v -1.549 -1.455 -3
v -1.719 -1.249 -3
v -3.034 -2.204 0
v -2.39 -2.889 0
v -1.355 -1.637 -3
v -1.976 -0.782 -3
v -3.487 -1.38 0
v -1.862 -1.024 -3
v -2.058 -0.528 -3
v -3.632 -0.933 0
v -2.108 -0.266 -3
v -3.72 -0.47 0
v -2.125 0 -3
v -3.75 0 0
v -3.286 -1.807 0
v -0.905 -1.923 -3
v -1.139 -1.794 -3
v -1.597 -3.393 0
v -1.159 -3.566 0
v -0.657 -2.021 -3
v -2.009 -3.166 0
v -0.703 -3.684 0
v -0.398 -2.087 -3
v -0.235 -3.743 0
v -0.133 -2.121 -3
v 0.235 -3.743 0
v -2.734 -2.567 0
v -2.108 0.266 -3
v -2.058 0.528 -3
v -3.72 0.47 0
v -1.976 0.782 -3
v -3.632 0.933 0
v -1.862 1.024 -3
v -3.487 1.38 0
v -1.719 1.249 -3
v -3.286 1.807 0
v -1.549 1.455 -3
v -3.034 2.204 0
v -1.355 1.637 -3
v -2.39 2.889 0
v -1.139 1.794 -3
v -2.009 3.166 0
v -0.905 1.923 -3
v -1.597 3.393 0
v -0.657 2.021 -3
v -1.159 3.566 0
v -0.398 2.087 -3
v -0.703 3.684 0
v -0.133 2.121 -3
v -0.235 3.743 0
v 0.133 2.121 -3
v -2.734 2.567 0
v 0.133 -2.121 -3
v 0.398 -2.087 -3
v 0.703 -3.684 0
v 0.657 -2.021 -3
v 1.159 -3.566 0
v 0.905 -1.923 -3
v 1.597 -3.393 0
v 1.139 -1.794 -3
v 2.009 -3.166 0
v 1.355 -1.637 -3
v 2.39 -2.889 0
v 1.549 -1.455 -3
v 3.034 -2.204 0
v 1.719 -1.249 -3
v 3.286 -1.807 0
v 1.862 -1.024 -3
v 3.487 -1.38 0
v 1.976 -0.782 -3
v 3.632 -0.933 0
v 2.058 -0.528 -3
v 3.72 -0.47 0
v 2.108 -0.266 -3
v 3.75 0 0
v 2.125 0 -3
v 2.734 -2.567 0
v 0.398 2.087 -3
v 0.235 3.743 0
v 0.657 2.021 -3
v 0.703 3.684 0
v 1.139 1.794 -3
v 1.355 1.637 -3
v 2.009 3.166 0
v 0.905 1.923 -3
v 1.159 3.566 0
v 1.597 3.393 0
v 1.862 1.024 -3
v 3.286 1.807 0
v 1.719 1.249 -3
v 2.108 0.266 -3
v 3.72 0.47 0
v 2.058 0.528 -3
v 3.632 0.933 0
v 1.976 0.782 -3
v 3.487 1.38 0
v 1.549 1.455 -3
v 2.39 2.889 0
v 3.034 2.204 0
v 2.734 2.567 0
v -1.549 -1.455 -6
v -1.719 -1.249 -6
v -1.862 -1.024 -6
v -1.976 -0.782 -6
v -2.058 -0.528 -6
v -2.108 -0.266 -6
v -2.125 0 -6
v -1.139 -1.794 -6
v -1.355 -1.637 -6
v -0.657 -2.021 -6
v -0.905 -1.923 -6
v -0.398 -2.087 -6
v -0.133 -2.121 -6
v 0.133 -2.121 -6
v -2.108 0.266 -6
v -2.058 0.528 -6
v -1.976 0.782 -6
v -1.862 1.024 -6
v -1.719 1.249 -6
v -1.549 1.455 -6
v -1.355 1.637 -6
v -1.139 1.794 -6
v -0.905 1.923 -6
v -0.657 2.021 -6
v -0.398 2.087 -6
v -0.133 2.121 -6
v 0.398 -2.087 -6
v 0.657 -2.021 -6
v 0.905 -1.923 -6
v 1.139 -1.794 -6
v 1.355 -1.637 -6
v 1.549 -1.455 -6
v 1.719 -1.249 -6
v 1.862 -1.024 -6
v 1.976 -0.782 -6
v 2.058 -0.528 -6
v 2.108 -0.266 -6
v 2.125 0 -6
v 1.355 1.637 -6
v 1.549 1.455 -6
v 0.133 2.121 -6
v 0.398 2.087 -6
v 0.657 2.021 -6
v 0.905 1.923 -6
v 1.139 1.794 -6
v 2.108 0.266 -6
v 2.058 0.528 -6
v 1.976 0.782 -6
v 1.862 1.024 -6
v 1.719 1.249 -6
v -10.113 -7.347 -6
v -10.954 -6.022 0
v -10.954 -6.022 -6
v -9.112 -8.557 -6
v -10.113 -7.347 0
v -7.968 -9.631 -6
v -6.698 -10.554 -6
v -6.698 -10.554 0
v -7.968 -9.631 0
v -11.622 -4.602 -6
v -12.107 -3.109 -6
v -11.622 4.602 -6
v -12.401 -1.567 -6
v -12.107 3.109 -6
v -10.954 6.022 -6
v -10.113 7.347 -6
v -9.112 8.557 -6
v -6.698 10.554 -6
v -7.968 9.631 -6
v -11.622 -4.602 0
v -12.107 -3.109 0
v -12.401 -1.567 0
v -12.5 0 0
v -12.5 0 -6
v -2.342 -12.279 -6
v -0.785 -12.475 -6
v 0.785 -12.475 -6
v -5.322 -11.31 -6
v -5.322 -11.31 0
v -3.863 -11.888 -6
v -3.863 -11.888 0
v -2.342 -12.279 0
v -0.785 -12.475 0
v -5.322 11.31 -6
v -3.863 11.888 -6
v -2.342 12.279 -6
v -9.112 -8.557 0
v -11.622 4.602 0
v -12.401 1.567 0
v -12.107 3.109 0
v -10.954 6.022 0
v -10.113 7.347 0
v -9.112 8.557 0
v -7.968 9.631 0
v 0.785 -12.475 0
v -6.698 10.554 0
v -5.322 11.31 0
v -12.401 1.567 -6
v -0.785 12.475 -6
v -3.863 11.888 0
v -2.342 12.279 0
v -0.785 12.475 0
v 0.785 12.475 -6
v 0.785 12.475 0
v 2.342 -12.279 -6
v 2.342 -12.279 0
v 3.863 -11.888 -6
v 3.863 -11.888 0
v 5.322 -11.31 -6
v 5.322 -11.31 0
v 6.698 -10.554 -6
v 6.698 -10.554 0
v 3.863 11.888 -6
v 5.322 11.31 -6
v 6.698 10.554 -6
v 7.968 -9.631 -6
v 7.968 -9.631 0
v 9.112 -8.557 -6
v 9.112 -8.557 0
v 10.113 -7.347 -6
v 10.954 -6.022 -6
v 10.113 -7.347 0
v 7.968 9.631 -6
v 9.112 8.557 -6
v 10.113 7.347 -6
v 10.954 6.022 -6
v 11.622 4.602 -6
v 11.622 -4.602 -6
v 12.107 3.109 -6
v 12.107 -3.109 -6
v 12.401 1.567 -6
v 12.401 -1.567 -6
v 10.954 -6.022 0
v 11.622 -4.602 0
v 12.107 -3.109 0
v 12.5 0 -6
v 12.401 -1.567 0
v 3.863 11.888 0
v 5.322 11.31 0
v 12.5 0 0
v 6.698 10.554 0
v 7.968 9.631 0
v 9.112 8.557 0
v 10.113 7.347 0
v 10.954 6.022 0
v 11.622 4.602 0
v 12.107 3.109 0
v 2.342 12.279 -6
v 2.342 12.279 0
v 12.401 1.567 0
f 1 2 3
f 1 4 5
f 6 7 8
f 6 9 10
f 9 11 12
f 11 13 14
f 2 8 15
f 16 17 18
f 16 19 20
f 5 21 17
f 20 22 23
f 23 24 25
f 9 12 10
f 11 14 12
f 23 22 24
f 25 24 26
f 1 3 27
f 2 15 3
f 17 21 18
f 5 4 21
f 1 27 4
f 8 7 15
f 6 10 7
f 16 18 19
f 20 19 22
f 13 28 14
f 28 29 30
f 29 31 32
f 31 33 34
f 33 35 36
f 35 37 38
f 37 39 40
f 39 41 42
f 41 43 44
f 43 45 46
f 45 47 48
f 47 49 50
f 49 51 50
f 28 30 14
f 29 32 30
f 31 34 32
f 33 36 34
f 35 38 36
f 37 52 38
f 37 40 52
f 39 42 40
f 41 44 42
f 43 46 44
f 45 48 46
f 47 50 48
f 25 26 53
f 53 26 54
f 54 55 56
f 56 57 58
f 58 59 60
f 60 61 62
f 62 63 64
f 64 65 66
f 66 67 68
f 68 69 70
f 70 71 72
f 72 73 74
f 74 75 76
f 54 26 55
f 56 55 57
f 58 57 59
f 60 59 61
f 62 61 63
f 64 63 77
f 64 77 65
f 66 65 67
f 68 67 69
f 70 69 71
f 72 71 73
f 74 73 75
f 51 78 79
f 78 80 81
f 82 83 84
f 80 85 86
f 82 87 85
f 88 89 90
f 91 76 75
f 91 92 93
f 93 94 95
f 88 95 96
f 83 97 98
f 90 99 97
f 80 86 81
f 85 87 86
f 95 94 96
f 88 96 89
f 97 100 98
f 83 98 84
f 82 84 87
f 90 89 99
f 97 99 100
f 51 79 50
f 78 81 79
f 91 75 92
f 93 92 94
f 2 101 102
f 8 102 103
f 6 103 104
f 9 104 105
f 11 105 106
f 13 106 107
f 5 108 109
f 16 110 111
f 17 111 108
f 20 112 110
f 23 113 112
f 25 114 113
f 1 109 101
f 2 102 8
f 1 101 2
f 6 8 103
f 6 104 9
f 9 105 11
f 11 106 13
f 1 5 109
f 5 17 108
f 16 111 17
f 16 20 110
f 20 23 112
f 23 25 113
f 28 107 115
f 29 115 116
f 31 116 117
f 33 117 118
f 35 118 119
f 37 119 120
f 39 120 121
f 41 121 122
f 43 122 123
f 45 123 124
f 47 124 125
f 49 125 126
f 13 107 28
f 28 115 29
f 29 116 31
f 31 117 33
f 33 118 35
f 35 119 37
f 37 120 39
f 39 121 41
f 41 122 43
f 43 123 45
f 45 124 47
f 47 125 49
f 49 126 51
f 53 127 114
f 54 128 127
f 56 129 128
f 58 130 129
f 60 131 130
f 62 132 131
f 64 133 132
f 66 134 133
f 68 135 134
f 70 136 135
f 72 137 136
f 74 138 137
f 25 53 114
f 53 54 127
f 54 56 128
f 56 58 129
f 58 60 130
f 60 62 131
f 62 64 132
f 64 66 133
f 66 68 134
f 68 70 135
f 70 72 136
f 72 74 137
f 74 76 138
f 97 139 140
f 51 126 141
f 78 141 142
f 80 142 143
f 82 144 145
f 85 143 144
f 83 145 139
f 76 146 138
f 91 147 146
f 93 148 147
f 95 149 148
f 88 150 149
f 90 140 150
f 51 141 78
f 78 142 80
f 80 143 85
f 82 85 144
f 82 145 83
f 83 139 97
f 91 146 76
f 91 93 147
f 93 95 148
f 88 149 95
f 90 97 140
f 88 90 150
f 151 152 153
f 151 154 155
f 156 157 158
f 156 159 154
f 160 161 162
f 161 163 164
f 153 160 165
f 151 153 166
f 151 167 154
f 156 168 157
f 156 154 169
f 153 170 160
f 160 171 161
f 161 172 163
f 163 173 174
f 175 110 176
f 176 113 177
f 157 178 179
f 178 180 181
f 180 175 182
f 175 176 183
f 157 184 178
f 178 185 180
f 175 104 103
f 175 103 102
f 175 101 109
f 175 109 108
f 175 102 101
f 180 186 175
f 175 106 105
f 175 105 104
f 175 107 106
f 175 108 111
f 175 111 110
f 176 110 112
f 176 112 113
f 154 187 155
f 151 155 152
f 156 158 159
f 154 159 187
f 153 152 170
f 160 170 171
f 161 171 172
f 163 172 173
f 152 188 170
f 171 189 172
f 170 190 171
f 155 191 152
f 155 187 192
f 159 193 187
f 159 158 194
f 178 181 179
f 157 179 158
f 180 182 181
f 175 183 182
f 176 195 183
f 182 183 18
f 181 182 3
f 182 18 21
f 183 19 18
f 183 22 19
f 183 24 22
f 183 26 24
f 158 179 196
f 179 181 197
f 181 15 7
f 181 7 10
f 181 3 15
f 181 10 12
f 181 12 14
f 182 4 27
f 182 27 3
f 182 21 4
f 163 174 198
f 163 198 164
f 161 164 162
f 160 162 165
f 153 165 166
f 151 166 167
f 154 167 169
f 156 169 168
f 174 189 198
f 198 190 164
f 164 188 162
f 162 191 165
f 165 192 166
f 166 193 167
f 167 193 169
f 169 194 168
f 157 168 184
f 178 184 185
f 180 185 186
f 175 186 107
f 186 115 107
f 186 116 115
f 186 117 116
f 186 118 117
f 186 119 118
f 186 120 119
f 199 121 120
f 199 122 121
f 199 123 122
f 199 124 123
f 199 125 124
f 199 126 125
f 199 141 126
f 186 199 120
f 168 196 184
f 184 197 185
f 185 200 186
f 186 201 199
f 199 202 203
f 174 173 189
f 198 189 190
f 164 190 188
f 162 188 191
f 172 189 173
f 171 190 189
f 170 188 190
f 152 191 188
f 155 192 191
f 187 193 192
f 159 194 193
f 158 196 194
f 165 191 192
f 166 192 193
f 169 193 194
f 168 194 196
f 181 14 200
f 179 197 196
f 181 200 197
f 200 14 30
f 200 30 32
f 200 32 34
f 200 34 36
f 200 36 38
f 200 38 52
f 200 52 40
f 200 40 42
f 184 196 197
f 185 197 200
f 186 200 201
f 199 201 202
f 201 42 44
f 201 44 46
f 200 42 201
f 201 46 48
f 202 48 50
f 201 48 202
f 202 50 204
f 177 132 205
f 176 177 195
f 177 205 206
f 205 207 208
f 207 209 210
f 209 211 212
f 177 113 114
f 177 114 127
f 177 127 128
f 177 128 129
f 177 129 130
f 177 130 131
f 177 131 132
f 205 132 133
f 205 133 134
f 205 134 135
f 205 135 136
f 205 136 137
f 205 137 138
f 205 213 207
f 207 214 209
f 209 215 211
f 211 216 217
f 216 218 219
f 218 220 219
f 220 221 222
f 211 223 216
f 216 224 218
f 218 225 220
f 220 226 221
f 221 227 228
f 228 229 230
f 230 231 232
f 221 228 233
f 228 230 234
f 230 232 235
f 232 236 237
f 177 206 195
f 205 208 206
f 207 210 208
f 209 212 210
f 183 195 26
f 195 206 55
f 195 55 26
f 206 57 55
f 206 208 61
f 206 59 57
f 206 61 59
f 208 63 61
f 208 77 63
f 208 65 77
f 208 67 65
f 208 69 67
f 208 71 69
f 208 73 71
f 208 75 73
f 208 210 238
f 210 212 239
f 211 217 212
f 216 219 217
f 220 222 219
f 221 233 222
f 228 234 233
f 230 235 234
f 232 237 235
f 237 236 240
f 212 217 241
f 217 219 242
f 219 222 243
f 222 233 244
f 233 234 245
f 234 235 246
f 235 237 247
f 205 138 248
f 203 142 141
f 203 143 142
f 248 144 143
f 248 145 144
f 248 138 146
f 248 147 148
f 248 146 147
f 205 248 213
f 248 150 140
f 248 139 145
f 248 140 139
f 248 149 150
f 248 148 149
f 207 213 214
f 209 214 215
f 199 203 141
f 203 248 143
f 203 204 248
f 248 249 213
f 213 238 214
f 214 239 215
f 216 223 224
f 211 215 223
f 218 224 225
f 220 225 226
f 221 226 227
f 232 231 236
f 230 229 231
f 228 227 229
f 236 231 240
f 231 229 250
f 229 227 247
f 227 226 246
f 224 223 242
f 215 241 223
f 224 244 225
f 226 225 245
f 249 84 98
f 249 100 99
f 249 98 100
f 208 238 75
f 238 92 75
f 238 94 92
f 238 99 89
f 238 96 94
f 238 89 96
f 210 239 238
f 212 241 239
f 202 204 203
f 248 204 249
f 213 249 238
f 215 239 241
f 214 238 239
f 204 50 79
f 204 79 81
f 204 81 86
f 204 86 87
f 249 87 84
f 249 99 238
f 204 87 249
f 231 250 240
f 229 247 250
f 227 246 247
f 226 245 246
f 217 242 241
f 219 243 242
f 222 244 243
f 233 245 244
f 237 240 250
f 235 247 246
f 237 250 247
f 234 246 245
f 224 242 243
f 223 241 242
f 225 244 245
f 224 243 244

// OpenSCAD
$fn = 50;

difference() {
	union() {
		translate(v = [0, 0, -6.0]) {
			cylinder(h = 6, r = 12.5);
		}
	}
	union() {
		translate(v = [0, 0, 0]) {
			rotate(a = [0, 0, 0]) {
				difference() {
					union() {
						translate(v = [0, 0, -9.0]) {
							cylinder(h = 9, r = 2.0);
						}
						translate(v = [0, 0, -3]) {
							cylinder(h = 3, r1 = 2.125, r2 = 3.75);
						}
						translate(v = [0, 0, -9.0]) {
							cylinder(h = 9, r = 2.125);
						}
						translate(v = [0, 0, -9.0]) {
							cylinder(h = 9, r = 2.0);
						}
					}
					union();
				}
			}
		}
	}
}
